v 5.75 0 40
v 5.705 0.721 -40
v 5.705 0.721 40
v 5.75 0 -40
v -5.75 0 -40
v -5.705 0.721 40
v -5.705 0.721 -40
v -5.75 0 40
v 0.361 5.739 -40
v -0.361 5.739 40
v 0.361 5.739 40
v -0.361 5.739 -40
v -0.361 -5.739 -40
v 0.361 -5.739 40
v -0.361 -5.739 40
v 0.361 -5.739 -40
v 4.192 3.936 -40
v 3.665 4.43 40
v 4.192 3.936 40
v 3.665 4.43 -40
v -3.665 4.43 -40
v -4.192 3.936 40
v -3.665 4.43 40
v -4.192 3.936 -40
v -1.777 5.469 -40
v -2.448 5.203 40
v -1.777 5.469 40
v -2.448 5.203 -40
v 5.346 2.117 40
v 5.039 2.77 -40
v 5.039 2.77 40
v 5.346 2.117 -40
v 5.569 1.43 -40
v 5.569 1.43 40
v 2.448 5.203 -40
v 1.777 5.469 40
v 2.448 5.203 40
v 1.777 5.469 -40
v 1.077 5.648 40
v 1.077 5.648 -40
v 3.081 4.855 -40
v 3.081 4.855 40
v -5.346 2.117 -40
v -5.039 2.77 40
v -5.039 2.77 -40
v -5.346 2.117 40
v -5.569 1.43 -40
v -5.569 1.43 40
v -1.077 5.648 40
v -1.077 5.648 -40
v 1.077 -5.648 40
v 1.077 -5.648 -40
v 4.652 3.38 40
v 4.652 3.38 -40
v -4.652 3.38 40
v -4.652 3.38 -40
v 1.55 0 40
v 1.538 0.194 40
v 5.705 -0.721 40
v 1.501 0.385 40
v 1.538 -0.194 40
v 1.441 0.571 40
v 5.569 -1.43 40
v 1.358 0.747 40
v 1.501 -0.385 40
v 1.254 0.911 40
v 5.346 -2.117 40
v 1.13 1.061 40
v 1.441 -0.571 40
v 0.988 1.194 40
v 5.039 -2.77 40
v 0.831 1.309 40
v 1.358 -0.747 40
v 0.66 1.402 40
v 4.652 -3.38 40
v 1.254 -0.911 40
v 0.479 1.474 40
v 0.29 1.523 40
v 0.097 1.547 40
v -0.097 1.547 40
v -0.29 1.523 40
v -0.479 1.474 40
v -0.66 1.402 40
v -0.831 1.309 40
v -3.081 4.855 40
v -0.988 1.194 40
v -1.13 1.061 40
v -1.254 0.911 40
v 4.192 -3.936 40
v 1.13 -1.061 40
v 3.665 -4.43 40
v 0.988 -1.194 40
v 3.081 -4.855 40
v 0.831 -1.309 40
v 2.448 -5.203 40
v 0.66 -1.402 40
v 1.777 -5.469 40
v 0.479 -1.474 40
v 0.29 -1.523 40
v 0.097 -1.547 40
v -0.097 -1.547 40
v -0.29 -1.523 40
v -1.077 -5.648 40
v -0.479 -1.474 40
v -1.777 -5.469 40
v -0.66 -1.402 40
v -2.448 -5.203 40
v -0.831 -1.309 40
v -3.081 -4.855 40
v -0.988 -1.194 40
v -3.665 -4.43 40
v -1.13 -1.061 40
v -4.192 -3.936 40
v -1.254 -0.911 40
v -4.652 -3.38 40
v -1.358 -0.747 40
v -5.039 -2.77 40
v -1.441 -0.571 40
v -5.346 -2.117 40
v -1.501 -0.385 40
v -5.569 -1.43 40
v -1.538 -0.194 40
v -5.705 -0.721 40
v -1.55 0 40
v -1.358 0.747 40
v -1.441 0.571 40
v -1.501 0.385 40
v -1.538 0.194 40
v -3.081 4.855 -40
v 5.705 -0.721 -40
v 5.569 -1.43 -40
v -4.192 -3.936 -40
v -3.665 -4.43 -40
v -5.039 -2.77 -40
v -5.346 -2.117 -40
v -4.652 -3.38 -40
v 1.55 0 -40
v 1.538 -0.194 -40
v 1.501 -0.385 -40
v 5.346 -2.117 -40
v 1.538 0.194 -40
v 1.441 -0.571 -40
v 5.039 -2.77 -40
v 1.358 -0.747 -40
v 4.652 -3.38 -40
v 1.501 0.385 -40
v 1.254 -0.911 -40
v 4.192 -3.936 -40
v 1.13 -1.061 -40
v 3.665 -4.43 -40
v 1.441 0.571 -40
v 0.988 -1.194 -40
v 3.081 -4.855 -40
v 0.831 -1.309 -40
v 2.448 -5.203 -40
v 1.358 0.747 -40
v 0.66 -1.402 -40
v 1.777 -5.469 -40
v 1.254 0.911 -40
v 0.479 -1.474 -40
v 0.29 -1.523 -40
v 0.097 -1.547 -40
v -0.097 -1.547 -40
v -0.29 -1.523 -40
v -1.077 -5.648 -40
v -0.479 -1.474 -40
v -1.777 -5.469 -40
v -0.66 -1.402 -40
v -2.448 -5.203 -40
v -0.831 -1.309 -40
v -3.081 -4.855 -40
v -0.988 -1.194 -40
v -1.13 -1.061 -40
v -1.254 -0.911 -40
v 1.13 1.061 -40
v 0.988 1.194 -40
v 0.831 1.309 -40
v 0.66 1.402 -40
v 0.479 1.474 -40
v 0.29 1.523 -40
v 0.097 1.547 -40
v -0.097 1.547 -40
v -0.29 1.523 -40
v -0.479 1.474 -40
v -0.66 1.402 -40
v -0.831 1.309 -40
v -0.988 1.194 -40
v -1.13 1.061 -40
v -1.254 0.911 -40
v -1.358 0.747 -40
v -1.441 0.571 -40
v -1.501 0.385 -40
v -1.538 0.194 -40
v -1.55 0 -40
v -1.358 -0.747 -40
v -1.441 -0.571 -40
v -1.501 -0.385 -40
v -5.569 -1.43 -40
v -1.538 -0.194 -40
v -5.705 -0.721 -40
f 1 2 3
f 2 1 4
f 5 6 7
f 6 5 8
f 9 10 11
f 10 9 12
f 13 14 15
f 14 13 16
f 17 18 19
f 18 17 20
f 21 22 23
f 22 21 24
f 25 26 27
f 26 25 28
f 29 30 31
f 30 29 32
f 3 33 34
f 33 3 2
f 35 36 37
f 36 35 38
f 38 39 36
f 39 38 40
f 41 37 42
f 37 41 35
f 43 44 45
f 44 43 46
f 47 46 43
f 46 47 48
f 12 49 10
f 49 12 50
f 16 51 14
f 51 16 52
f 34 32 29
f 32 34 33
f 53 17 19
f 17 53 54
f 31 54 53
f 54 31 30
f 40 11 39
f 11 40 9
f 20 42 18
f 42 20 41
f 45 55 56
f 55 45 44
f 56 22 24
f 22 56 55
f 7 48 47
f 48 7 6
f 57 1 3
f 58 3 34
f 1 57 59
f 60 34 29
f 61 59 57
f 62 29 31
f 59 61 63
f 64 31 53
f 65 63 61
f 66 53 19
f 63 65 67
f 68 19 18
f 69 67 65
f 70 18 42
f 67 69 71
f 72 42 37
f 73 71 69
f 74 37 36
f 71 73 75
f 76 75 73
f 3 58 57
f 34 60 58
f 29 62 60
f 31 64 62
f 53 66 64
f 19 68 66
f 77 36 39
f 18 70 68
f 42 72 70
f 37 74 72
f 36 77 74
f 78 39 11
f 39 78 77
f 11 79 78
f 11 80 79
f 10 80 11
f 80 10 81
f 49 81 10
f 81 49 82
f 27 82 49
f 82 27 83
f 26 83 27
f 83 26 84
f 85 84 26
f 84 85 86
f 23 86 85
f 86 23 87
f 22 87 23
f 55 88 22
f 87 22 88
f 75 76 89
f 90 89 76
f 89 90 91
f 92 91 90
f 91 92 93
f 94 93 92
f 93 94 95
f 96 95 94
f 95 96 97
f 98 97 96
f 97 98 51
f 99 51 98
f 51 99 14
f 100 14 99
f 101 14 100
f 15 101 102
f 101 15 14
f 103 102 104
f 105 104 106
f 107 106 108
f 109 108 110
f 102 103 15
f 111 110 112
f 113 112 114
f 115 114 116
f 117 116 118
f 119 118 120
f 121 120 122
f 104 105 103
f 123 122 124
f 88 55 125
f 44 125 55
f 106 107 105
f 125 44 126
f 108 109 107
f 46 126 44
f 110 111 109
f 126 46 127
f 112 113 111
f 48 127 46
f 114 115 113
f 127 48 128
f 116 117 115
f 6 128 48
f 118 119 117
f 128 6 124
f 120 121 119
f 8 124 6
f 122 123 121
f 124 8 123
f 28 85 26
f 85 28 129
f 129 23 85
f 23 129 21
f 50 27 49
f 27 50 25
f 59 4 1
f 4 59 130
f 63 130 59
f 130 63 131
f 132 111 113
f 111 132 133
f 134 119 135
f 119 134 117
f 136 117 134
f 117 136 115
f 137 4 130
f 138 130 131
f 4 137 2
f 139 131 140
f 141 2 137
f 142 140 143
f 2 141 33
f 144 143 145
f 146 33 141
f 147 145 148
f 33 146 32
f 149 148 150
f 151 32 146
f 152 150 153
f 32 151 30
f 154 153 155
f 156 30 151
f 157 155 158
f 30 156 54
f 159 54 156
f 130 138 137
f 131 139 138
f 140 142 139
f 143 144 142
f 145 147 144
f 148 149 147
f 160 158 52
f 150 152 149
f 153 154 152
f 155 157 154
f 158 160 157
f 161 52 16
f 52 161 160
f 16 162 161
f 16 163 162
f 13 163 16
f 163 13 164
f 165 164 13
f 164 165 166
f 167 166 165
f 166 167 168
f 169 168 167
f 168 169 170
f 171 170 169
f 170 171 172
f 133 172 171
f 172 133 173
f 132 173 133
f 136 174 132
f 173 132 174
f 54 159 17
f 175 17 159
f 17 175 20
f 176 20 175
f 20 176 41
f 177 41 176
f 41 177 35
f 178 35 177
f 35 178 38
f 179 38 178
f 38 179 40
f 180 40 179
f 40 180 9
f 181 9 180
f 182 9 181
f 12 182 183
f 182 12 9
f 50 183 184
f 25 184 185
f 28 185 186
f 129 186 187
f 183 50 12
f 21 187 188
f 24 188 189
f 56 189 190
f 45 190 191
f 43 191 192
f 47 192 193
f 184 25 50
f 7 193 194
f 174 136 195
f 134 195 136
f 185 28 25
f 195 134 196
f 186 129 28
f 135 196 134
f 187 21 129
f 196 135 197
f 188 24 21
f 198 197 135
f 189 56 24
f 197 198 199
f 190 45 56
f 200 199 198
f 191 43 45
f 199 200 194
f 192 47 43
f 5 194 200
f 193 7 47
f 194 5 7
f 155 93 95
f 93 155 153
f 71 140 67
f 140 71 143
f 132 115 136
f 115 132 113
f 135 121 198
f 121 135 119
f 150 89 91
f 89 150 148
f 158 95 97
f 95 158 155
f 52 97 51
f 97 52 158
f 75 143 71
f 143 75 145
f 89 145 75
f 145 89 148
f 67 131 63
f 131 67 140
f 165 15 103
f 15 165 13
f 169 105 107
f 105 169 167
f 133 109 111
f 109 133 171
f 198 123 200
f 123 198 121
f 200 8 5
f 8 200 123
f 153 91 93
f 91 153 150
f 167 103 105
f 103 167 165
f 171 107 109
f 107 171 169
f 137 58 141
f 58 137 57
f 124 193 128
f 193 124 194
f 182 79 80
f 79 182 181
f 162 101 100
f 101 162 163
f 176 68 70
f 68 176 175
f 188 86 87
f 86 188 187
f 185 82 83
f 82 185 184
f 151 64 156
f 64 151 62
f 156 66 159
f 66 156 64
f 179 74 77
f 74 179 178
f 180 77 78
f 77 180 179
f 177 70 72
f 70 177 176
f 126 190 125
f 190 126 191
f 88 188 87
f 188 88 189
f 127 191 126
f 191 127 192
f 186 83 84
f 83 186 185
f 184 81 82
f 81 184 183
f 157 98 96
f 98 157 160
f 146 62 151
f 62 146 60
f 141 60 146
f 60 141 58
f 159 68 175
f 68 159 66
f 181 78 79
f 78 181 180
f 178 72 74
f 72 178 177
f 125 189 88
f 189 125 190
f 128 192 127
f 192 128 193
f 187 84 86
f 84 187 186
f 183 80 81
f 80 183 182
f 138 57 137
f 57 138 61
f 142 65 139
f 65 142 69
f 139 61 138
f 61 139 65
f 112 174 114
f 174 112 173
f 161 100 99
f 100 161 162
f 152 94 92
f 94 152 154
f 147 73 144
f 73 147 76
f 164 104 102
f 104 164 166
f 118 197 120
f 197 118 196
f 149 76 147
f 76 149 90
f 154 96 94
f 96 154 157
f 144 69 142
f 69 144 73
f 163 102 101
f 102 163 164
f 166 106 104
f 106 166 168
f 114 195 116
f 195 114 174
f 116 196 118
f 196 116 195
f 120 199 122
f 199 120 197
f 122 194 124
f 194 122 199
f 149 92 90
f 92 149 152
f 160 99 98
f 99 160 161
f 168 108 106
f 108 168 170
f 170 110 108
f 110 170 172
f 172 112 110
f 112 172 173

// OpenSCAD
$fn = 50;


difference() {
	union() {
		translate(v = [0, 0, -40.0000000000]) {
			cylinder(h = 80, r = 5.7500000000);
		}
	}
	union() {
		translate(v = [0, 0, -100.0000000000]) {
			cylinder(h = 200, r = 1.5500000000);
		}
	}
}
